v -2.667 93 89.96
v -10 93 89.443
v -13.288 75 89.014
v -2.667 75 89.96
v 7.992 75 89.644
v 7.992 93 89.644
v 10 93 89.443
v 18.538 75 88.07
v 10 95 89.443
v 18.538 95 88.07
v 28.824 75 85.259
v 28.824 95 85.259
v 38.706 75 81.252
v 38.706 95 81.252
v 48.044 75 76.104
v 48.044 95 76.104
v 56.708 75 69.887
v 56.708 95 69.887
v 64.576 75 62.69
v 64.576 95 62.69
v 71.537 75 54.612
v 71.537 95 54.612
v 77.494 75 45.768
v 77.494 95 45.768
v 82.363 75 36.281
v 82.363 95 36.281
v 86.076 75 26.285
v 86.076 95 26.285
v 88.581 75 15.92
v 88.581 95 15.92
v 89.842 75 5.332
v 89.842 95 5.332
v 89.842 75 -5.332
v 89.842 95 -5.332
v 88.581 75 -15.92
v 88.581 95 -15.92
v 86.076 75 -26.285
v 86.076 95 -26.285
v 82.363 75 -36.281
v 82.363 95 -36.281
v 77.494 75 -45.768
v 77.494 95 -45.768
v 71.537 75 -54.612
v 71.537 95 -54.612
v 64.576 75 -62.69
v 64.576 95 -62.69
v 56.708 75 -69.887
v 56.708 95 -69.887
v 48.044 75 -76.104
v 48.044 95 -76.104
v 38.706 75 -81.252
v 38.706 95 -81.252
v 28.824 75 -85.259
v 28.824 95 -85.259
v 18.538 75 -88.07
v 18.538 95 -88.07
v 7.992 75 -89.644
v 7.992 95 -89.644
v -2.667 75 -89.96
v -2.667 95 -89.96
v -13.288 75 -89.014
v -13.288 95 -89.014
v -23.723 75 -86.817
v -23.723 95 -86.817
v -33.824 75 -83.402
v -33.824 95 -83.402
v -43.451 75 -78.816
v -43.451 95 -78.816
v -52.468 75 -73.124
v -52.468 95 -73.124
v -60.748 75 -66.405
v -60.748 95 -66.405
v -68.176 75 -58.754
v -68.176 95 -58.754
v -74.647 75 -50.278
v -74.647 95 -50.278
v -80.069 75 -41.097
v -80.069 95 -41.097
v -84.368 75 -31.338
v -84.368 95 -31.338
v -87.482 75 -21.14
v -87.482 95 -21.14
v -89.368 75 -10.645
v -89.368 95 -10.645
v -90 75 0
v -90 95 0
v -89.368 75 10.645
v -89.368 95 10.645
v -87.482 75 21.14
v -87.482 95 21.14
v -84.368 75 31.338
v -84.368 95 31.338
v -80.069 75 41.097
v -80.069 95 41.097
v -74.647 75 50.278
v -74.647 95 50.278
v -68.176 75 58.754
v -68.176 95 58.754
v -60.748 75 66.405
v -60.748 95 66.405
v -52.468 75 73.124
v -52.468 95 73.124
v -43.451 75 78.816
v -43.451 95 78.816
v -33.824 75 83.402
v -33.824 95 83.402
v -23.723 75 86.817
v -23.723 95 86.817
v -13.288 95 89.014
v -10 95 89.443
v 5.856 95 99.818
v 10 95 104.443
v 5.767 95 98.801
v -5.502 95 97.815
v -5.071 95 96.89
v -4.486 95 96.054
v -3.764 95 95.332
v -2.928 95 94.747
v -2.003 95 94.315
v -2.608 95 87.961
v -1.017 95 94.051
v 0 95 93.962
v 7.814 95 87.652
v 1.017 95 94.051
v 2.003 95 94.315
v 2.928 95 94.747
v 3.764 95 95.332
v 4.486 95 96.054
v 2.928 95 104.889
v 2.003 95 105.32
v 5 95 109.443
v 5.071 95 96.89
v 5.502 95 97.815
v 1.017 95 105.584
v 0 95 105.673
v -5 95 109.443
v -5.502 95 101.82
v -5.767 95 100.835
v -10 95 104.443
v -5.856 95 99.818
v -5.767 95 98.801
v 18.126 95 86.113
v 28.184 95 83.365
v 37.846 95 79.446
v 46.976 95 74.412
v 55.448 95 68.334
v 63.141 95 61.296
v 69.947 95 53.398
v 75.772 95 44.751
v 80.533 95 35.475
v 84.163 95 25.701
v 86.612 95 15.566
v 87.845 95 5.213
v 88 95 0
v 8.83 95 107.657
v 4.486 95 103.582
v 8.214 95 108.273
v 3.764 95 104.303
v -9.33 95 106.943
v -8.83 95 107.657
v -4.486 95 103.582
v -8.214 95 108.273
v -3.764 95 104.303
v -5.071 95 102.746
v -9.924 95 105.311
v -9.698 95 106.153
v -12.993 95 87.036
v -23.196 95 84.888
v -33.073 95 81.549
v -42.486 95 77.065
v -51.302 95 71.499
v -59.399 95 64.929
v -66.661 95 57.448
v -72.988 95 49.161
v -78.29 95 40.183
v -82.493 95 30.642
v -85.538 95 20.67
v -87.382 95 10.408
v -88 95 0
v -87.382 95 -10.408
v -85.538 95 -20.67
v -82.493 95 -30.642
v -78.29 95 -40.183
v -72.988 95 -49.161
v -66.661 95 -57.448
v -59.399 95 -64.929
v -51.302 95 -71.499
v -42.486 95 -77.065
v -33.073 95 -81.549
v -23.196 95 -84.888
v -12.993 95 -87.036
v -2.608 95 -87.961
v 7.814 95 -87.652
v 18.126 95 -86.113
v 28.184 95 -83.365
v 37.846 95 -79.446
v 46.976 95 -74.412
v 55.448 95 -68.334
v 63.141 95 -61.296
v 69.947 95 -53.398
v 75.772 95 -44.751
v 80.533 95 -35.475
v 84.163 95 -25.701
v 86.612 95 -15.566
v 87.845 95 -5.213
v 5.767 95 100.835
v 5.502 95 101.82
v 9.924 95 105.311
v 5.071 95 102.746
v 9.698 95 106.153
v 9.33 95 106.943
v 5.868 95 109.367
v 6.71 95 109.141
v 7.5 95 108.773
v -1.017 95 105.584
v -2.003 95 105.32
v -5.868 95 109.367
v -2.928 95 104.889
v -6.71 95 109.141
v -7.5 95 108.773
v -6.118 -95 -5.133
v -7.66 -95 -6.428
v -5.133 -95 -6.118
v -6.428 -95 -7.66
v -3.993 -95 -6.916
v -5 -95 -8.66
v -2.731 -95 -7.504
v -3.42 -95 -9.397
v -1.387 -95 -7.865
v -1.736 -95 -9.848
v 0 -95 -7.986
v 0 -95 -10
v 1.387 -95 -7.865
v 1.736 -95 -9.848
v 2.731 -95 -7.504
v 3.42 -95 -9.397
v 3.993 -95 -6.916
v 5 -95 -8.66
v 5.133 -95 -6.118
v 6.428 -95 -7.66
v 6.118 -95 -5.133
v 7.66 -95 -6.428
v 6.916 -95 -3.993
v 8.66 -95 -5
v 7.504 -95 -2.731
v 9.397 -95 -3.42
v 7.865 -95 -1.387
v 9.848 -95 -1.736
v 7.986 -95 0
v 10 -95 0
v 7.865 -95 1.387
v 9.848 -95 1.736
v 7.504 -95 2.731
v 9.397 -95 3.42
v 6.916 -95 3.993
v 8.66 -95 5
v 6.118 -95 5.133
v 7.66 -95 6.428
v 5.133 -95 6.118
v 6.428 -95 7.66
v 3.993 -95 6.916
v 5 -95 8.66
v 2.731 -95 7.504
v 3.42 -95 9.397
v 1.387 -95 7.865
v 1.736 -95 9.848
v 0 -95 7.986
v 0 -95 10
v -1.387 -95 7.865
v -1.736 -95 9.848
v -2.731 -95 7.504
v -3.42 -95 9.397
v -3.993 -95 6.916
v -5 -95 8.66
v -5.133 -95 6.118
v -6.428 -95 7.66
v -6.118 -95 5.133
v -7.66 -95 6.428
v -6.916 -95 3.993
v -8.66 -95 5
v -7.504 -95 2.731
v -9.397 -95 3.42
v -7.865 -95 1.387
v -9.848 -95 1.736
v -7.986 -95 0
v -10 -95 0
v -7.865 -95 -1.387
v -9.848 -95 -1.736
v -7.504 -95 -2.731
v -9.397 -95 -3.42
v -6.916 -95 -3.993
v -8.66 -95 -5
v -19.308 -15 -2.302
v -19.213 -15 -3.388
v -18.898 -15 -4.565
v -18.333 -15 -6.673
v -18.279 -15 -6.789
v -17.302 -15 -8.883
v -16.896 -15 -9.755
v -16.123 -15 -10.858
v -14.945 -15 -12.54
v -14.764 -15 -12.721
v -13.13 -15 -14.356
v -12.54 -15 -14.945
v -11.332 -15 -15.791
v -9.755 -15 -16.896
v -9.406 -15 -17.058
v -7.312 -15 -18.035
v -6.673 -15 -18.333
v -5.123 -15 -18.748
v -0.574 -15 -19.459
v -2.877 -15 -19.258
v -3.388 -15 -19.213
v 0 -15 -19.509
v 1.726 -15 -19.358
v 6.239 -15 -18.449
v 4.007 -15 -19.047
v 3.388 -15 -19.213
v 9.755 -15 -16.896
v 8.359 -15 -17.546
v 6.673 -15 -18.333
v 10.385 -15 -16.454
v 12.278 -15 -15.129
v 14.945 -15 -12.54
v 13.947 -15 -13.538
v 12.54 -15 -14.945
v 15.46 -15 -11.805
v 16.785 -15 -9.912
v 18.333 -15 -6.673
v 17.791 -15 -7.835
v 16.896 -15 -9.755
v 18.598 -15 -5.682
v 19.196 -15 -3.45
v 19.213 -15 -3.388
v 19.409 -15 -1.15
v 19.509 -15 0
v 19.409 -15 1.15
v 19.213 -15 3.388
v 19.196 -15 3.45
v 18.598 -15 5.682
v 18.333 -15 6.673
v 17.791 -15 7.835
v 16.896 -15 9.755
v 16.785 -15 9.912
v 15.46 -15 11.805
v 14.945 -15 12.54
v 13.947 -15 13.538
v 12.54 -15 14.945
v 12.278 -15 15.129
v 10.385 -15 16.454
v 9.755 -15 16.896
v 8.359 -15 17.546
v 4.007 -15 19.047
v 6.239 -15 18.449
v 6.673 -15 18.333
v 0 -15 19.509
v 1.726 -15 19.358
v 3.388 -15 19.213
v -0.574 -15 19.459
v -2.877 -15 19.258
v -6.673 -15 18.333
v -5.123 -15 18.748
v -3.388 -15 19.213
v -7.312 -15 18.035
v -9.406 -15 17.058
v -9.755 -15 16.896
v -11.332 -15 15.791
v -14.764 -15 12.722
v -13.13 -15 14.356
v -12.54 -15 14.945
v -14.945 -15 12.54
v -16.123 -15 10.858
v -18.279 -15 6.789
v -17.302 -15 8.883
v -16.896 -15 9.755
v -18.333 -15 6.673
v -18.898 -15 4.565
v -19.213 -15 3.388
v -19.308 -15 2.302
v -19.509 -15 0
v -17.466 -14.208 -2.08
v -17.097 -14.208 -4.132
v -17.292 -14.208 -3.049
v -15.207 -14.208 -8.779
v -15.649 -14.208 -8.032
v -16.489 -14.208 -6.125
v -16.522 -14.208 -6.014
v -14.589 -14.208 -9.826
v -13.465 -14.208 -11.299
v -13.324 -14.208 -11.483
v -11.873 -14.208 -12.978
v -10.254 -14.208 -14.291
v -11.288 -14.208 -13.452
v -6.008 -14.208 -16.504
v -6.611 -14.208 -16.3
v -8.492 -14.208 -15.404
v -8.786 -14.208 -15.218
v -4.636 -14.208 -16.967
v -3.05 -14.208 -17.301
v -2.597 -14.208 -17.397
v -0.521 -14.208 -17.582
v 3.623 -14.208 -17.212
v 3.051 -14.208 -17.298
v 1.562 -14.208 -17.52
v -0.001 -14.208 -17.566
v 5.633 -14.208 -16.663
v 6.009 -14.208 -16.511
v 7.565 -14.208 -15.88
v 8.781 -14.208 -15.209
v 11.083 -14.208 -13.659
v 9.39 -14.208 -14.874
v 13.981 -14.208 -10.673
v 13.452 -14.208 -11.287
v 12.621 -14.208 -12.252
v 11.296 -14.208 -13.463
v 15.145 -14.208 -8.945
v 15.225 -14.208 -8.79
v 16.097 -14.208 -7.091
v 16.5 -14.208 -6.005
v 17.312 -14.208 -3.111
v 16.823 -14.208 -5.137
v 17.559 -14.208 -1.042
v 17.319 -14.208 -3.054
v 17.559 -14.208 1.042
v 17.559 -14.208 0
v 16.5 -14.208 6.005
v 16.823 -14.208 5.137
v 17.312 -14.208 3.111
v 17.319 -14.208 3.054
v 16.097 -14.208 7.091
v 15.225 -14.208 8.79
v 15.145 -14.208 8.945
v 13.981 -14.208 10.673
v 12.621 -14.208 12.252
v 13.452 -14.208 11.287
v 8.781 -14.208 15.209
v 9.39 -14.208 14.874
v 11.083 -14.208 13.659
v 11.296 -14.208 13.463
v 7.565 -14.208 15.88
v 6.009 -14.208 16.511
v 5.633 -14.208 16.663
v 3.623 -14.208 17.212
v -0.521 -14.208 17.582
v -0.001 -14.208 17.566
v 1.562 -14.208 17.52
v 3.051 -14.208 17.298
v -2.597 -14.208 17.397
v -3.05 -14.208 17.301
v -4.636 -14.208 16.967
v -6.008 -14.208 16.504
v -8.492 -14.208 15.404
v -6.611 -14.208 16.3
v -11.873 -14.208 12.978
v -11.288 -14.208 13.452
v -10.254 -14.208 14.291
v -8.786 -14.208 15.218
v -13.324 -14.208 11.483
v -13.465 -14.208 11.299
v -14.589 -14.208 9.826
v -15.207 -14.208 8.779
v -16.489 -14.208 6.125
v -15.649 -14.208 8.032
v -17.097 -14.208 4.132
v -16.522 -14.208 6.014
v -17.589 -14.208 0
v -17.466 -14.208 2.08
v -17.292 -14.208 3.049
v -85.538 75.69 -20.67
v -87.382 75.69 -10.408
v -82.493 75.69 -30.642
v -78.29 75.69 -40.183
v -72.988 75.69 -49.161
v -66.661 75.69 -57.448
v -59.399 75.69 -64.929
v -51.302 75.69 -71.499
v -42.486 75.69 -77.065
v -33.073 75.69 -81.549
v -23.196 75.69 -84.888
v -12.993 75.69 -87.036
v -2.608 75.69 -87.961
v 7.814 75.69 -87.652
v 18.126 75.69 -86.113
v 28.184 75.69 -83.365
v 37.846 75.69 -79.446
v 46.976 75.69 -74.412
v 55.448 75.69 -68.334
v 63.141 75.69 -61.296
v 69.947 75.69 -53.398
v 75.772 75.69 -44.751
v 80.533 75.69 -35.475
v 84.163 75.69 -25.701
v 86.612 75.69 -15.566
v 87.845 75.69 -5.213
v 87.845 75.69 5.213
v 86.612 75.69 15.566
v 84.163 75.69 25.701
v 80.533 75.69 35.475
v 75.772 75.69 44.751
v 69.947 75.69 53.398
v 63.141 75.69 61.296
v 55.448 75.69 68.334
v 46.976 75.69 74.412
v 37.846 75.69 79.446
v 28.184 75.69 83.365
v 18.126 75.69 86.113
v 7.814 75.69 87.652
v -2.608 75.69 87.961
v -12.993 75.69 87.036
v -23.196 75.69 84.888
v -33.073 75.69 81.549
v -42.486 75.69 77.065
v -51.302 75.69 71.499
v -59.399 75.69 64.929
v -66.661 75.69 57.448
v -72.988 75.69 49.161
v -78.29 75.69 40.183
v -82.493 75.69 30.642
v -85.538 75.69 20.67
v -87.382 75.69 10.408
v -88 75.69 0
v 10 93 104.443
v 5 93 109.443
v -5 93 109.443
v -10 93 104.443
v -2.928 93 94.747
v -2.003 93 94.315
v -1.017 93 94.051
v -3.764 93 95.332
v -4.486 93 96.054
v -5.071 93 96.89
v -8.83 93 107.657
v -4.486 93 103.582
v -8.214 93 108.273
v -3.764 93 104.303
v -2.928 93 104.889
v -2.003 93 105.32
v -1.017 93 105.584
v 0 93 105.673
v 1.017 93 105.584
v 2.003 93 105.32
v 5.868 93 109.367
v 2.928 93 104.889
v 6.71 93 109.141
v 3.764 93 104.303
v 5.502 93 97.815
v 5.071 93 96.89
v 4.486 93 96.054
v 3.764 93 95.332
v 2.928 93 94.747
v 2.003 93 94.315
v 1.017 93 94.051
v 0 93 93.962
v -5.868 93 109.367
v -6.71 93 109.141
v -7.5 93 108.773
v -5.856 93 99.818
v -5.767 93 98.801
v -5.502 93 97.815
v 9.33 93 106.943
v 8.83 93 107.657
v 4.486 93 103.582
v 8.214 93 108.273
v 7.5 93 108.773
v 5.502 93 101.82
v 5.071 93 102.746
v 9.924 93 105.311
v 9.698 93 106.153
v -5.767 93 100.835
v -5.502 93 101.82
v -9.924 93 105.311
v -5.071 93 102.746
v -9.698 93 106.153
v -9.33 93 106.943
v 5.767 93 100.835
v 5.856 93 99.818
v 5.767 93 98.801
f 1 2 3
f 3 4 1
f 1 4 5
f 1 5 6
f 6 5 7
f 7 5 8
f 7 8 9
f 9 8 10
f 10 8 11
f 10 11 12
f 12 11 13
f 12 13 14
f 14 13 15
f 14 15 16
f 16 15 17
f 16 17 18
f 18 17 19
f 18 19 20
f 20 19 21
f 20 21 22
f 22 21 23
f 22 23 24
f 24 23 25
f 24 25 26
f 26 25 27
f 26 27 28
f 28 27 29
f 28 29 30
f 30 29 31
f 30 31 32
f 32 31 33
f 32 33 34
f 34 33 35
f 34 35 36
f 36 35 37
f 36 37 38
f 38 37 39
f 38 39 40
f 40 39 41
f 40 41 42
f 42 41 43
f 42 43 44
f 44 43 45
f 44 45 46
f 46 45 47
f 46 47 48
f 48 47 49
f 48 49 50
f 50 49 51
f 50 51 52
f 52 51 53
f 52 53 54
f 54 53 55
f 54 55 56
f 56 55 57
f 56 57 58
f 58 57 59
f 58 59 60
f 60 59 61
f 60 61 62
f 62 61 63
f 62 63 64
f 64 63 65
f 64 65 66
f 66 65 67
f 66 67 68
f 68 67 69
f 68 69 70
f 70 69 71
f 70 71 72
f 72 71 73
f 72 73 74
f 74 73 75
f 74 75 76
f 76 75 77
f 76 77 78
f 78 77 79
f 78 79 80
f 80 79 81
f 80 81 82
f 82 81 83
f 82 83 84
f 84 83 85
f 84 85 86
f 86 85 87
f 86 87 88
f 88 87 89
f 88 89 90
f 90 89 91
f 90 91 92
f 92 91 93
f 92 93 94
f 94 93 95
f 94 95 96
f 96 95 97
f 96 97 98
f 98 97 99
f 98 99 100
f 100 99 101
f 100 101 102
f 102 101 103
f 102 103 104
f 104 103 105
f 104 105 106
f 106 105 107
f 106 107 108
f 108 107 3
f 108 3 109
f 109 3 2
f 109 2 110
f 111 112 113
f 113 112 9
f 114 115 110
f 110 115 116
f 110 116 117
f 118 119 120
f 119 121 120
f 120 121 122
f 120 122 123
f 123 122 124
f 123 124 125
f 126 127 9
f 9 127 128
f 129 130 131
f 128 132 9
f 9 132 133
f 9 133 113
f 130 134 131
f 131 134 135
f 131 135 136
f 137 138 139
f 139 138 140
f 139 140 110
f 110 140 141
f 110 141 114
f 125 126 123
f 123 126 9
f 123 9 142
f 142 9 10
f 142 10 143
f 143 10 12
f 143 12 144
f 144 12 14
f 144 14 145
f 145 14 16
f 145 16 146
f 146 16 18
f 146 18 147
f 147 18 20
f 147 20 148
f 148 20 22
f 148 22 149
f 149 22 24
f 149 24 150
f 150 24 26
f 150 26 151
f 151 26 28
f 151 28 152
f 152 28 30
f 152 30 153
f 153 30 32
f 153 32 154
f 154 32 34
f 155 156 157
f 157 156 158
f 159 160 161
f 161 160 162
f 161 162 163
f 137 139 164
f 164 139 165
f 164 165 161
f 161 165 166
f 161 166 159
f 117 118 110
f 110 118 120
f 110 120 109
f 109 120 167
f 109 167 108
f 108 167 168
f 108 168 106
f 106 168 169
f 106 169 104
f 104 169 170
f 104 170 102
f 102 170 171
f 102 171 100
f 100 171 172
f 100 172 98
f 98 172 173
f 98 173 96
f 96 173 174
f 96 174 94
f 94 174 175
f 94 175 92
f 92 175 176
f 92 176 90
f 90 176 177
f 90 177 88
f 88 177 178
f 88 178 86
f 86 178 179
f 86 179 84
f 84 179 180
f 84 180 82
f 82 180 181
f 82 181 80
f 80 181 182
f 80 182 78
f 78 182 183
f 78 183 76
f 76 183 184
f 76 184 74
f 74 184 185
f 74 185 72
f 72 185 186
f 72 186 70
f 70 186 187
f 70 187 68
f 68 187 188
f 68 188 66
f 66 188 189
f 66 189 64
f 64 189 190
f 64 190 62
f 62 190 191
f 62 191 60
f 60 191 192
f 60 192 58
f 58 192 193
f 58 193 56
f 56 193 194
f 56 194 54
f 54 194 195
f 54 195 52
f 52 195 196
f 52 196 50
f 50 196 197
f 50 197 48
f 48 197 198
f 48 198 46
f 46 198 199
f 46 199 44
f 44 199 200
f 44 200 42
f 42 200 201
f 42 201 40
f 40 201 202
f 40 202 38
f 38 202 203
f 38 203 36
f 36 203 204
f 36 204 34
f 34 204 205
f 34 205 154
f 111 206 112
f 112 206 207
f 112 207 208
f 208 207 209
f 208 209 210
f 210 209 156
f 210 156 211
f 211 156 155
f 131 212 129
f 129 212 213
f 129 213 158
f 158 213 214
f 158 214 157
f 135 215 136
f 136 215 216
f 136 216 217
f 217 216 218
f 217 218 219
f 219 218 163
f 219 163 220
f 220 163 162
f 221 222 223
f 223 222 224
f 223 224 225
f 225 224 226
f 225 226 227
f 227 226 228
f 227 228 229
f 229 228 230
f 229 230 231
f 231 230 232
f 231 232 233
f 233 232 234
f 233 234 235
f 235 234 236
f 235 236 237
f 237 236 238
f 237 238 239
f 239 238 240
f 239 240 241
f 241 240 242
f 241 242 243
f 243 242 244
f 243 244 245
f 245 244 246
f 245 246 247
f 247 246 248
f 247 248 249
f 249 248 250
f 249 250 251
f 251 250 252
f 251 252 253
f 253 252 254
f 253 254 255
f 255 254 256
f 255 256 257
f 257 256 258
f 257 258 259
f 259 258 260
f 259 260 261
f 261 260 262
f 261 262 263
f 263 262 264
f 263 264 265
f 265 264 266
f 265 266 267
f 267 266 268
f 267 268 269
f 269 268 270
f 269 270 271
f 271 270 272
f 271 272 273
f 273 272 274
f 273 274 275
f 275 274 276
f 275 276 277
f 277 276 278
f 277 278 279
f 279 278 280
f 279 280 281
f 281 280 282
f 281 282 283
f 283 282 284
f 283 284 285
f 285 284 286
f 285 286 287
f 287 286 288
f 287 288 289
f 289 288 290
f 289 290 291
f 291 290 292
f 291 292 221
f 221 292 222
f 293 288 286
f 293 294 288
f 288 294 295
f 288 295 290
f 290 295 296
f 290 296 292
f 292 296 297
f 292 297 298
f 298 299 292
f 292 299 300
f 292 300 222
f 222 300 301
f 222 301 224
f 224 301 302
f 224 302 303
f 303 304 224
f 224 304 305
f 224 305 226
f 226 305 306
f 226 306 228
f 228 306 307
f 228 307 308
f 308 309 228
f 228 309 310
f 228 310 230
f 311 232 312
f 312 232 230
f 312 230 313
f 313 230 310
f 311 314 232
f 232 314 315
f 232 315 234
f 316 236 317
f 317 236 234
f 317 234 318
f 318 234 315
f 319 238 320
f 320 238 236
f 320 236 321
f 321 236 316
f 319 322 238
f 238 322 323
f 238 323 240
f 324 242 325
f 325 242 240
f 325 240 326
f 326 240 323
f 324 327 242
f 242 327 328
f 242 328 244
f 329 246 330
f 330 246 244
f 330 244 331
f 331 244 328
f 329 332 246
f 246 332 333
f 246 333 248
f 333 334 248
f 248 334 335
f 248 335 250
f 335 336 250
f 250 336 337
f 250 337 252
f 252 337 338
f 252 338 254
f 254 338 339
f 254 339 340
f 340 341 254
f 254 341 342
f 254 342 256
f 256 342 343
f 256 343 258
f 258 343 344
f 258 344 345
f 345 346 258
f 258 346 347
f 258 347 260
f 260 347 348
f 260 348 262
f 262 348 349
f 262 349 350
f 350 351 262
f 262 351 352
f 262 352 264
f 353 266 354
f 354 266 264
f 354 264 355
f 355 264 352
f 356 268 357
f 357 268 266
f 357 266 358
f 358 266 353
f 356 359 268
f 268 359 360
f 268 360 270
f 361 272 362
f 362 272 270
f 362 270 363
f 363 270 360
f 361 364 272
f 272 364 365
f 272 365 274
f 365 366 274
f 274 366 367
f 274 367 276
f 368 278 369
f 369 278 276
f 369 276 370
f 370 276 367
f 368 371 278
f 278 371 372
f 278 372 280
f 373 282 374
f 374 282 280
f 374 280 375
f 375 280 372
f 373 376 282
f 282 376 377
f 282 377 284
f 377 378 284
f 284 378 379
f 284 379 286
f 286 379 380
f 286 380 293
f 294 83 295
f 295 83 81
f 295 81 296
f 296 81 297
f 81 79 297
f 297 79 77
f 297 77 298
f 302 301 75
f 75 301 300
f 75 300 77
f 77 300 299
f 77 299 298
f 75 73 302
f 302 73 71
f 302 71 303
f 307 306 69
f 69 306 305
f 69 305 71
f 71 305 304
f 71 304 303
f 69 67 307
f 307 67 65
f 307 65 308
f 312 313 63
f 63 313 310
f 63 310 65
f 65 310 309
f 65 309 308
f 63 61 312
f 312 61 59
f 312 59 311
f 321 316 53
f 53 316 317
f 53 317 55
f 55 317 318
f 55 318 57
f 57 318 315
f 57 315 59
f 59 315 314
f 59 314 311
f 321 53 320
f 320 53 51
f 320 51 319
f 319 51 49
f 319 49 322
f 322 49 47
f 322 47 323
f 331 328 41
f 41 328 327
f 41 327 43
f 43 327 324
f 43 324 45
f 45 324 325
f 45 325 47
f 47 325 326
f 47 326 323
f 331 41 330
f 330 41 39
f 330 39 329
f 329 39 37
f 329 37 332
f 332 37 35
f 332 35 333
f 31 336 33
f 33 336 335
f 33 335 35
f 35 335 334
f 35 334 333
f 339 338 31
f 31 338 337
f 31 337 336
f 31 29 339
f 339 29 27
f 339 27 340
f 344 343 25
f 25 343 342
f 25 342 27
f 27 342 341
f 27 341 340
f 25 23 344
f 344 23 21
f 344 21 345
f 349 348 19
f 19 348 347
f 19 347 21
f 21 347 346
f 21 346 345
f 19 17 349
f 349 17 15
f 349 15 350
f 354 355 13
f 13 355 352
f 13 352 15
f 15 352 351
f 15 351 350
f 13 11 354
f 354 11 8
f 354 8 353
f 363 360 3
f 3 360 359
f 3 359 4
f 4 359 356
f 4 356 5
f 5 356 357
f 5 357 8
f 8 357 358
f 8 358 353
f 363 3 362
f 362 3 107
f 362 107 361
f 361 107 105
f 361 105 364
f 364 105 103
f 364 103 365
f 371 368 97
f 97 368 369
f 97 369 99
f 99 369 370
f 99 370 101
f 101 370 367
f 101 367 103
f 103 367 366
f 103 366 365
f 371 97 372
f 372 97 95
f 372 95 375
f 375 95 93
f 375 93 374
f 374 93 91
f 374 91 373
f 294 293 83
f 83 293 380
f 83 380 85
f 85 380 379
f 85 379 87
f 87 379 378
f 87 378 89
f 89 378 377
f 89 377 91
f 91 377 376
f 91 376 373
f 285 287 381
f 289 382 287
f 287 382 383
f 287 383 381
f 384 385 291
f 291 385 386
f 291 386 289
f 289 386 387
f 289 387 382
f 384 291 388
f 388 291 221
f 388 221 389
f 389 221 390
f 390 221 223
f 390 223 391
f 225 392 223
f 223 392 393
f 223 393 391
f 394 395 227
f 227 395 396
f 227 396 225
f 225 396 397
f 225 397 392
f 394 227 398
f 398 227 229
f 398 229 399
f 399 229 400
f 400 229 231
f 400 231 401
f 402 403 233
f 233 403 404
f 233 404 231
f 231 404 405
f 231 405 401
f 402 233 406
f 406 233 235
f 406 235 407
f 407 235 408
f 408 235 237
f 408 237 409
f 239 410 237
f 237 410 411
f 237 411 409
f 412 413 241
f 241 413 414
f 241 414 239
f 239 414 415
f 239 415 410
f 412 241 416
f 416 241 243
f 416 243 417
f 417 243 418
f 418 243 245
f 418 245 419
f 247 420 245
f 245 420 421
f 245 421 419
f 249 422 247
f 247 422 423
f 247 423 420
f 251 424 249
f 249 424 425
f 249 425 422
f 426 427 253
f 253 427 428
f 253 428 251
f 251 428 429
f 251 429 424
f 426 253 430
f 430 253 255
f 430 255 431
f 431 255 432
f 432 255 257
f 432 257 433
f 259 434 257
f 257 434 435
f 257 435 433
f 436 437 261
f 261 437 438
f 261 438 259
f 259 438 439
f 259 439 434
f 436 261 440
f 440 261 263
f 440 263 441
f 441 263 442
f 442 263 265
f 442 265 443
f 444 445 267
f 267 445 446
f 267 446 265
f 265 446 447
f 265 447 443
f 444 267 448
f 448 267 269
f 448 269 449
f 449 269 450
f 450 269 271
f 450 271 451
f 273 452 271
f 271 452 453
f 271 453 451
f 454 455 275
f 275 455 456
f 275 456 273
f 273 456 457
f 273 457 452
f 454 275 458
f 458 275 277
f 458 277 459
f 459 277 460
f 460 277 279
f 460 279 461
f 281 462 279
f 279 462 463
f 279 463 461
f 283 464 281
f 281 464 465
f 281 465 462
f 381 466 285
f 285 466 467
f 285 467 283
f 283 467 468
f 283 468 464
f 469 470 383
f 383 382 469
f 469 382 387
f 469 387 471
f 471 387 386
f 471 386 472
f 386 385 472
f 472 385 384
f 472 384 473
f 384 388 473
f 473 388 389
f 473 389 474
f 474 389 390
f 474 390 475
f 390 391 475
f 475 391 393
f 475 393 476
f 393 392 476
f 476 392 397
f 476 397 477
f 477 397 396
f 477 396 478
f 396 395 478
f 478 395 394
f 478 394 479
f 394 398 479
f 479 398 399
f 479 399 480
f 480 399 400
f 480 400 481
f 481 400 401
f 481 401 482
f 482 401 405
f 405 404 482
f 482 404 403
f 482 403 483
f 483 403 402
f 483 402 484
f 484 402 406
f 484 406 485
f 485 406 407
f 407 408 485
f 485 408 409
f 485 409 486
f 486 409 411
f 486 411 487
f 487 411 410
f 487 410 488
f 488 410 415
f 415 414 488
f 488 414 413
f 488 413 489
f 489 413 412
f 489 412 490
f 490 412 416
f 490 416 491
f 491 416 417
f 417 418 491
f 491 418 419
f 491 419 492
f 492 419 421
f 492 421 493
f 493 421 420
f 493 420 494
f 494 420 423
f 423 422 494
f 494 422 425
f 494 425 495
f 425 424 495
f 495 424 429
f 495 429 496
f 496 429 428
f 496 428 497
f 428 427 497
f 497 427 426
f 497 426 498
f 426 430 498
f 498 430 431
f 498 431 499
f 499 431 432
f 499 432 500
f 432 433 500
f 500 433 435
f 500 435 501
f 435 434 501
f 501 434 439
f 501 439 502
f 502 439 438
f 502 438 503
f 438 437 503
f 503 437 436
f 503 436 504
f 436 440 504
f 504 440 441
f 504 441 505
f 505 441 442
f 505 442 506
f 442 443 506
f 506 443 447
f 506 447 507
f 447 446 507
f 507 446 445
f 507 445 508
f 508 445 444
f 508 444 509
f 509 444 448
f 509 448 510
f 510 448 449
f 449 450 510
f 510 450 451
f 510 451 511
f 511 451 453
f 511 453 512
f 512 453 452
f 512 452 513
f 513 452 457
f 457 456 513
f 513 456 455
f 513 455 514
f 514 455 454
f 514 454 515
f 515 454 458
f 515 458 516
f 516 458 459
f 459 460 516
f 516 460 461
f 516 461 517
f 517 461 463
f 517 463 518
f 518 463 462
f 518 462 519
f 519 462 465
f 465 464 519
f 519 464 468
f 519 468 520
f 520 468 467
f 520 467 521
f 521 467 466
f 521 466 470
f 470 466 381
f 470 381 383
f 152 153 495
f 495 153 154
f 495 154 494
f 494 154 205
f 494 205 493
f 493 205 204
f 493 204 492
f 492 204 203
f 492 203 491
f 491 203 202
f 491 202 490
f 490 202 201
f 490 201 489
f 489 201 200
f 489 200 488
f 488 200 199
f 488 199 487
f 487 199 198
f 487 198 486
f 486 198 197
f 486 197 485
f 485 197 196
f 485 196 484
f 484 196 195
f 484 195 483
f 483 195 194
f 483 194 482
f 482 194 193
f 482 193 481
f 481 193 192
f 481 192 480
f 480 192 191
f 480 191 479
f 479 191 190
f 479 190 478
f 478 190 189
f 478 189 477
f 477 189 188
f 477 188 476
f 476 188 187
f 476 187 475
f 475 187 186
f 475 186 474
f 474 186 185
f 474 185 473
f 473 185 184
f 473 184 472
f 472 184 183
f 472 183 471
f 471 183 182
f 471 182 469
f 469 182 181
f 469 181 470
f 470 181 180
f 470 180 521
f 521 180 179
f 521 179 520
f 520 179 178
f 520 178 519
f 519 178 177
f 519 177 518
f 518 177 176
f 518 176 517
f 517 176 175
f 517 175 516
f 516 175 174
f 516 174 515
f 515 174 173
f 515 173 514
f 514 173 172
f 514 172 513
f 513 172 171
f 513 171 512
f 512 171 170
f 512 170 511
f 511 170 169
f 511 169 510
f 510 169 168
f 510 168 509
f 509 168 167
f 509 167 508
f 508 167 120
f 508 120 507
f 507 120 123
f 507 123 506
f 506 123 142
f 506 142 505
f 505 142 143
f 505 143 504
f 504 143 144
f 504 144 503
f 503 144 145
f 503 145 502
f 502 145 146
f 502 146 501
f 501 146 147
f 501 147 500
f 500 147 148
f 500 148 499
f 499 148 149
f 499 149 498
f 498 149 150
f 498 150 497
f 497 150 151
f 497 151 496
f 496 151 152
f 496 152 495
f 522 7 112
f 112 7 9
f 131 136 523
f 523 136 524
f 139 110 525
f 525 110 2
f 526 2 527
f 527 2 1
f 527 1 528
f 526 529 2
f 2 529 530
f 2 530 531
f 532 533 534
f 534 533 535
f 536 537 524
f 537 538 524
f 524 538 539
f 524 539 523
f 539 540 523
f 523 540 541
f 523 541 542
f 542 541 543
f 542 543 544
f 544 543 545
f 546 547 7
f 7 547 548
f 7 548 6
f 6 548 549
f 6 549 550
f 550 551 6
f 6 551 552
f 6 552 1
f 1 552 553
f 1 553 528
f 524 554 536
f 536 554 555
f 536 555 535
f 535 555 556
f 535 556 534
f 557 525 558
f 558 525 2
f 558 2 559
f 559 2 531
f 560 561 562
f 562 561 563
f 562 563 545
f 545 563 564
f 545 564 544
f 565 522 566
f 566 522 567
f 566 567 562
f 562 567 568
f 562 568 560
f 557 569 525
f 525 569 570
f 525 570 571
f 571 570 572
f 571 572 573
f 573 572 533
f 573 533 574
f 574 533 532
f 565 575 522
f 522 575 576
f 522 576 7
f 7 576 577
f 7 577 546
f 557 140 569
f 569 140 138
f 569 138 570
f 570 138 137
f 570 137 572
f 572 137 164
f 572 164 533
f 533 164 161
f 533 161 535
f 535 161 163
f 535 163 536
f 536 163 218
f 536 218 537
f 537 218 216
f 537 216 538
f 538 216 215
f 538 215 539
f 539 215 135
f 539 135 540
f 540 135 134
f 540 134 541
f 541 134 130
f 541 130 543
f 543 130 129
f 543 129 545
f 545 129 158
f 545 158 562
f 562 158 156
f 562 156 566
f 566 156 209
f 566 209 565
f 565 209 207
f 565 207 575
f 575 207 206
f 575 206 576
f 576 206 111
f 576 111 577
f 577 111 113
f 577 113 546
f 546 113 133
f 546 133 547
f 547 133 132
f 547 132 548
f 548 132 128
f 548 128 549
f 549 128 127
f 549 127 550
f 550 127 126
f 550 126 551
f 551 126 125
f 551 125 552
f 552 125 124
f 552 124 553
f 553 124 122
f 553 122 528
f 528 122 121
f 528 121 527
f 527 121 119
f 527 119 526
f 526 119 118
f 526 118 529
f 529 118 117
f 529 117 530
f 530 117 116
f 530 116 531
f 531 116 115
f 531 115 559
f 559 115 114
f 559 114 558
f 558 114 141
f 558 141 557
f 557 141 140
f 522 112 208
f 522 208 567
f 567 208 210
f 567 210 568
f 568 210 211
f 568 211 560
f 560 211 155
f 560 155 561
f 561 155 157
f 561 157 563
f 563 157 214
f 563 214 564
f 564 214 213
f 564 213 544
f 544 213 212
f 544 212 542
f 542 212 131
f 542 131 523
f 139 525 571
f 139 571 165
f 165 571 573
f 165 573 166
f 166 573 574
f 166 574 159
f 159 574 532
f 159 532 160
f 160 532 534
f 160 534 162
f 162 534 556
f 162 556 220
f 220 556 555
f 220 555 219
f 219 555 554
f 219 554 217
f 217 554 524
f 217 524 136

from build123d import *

# Parameters (mm, degrees)
VACIADO1_T              = -2
SALIENTE_EXTRUIR1_DEPTH = 2
CROQUIS3_R              = 5.855610057
CORTAR_EXTRUIR1_DEPTH   = 22
REDONDEO1_R             = 5


with BuildPart() as part:
    # Croquis1 → Revolución1 (revolve)
    with BuildSketch(Plane.XY, mode=Mode.PRIVATE) as revoluci_n1_sk:
        Polygon((0, 95), (0, -95), (10, -95), (19.509364421, -15), (90, 75), (90, 95), align=None)
    revolve(revoluci_n1_sk.sketch.rotate(Axis((0, 95, 0), (0, -1, 0)), 180), axis=Axis((0, 95, 0), (0, -1, 0)))

    # Vaciado1
    vaciado1_openings = [part.faces().sort_by_distance(p)[0] for p in [
        (0, -95, 0),
        (0, 95, 0),
    ]]
    offset(amount=VACIADO1_T, openings=vaciado1_openings, kind=Kind.INTERSECTION)

    # Croquis2 → Saliente-Extruir1 (add)
    with BuildSketch(Plane(origin=(0, 95, 0), x_dir=(1, 0, 0), z_dir=(0, 1, 0))):
        with BuildLine():
            Line((0, -109.4427191), (0, -90))
            ThreePointArc((0, -90), (-5.007758031, -89.860571774), (-10, -89.4427191))
            Line((-10, -89.4427191), (-10, -109.4427191))
            Line((-10, -109.4427191), (0, -109.4427191))
        make_face()
        with BuildLine():
            ThreePointArc((10, -89.4427191), (5.007758031, -89.860571774), (0, -90))
            Line((0, -90), (0, -109.4427191))
            Line((0, -109.4427191), (10, -109.4427191))
            Line((10, -109.4427191), (10, -89.4427191))
        make_face()
    extrude(amount=-SALIENTE_EXTRUIR1_DEPTH)

    # Croquis3 → Cortar-Extruir1 (cut)
    with BuildSketch(Plane(origin=(0, 95, 0), x_dir=(1, 0, 0), z_dir=(0, 1, 0))):
        with Locations(Location((0, -99.817771653, 0), (0, 0, 180))):
            Circle(CROQUIS3_R)
    extrude(amount=-CORTAR_EXTRUIR1_DEPTH, mode=Mode.SUBTRACT)

    # Redondeo1
    redondeo1_edges = [part.edges().sort_by_distance(p)[0] for p in [
        (10, 94, 109.4427191),
        (-10, 94, 109.4427191),
    ]]
    fillet(redondeo1_edges, radius=REDONDEO1_R)


solid = part.part
